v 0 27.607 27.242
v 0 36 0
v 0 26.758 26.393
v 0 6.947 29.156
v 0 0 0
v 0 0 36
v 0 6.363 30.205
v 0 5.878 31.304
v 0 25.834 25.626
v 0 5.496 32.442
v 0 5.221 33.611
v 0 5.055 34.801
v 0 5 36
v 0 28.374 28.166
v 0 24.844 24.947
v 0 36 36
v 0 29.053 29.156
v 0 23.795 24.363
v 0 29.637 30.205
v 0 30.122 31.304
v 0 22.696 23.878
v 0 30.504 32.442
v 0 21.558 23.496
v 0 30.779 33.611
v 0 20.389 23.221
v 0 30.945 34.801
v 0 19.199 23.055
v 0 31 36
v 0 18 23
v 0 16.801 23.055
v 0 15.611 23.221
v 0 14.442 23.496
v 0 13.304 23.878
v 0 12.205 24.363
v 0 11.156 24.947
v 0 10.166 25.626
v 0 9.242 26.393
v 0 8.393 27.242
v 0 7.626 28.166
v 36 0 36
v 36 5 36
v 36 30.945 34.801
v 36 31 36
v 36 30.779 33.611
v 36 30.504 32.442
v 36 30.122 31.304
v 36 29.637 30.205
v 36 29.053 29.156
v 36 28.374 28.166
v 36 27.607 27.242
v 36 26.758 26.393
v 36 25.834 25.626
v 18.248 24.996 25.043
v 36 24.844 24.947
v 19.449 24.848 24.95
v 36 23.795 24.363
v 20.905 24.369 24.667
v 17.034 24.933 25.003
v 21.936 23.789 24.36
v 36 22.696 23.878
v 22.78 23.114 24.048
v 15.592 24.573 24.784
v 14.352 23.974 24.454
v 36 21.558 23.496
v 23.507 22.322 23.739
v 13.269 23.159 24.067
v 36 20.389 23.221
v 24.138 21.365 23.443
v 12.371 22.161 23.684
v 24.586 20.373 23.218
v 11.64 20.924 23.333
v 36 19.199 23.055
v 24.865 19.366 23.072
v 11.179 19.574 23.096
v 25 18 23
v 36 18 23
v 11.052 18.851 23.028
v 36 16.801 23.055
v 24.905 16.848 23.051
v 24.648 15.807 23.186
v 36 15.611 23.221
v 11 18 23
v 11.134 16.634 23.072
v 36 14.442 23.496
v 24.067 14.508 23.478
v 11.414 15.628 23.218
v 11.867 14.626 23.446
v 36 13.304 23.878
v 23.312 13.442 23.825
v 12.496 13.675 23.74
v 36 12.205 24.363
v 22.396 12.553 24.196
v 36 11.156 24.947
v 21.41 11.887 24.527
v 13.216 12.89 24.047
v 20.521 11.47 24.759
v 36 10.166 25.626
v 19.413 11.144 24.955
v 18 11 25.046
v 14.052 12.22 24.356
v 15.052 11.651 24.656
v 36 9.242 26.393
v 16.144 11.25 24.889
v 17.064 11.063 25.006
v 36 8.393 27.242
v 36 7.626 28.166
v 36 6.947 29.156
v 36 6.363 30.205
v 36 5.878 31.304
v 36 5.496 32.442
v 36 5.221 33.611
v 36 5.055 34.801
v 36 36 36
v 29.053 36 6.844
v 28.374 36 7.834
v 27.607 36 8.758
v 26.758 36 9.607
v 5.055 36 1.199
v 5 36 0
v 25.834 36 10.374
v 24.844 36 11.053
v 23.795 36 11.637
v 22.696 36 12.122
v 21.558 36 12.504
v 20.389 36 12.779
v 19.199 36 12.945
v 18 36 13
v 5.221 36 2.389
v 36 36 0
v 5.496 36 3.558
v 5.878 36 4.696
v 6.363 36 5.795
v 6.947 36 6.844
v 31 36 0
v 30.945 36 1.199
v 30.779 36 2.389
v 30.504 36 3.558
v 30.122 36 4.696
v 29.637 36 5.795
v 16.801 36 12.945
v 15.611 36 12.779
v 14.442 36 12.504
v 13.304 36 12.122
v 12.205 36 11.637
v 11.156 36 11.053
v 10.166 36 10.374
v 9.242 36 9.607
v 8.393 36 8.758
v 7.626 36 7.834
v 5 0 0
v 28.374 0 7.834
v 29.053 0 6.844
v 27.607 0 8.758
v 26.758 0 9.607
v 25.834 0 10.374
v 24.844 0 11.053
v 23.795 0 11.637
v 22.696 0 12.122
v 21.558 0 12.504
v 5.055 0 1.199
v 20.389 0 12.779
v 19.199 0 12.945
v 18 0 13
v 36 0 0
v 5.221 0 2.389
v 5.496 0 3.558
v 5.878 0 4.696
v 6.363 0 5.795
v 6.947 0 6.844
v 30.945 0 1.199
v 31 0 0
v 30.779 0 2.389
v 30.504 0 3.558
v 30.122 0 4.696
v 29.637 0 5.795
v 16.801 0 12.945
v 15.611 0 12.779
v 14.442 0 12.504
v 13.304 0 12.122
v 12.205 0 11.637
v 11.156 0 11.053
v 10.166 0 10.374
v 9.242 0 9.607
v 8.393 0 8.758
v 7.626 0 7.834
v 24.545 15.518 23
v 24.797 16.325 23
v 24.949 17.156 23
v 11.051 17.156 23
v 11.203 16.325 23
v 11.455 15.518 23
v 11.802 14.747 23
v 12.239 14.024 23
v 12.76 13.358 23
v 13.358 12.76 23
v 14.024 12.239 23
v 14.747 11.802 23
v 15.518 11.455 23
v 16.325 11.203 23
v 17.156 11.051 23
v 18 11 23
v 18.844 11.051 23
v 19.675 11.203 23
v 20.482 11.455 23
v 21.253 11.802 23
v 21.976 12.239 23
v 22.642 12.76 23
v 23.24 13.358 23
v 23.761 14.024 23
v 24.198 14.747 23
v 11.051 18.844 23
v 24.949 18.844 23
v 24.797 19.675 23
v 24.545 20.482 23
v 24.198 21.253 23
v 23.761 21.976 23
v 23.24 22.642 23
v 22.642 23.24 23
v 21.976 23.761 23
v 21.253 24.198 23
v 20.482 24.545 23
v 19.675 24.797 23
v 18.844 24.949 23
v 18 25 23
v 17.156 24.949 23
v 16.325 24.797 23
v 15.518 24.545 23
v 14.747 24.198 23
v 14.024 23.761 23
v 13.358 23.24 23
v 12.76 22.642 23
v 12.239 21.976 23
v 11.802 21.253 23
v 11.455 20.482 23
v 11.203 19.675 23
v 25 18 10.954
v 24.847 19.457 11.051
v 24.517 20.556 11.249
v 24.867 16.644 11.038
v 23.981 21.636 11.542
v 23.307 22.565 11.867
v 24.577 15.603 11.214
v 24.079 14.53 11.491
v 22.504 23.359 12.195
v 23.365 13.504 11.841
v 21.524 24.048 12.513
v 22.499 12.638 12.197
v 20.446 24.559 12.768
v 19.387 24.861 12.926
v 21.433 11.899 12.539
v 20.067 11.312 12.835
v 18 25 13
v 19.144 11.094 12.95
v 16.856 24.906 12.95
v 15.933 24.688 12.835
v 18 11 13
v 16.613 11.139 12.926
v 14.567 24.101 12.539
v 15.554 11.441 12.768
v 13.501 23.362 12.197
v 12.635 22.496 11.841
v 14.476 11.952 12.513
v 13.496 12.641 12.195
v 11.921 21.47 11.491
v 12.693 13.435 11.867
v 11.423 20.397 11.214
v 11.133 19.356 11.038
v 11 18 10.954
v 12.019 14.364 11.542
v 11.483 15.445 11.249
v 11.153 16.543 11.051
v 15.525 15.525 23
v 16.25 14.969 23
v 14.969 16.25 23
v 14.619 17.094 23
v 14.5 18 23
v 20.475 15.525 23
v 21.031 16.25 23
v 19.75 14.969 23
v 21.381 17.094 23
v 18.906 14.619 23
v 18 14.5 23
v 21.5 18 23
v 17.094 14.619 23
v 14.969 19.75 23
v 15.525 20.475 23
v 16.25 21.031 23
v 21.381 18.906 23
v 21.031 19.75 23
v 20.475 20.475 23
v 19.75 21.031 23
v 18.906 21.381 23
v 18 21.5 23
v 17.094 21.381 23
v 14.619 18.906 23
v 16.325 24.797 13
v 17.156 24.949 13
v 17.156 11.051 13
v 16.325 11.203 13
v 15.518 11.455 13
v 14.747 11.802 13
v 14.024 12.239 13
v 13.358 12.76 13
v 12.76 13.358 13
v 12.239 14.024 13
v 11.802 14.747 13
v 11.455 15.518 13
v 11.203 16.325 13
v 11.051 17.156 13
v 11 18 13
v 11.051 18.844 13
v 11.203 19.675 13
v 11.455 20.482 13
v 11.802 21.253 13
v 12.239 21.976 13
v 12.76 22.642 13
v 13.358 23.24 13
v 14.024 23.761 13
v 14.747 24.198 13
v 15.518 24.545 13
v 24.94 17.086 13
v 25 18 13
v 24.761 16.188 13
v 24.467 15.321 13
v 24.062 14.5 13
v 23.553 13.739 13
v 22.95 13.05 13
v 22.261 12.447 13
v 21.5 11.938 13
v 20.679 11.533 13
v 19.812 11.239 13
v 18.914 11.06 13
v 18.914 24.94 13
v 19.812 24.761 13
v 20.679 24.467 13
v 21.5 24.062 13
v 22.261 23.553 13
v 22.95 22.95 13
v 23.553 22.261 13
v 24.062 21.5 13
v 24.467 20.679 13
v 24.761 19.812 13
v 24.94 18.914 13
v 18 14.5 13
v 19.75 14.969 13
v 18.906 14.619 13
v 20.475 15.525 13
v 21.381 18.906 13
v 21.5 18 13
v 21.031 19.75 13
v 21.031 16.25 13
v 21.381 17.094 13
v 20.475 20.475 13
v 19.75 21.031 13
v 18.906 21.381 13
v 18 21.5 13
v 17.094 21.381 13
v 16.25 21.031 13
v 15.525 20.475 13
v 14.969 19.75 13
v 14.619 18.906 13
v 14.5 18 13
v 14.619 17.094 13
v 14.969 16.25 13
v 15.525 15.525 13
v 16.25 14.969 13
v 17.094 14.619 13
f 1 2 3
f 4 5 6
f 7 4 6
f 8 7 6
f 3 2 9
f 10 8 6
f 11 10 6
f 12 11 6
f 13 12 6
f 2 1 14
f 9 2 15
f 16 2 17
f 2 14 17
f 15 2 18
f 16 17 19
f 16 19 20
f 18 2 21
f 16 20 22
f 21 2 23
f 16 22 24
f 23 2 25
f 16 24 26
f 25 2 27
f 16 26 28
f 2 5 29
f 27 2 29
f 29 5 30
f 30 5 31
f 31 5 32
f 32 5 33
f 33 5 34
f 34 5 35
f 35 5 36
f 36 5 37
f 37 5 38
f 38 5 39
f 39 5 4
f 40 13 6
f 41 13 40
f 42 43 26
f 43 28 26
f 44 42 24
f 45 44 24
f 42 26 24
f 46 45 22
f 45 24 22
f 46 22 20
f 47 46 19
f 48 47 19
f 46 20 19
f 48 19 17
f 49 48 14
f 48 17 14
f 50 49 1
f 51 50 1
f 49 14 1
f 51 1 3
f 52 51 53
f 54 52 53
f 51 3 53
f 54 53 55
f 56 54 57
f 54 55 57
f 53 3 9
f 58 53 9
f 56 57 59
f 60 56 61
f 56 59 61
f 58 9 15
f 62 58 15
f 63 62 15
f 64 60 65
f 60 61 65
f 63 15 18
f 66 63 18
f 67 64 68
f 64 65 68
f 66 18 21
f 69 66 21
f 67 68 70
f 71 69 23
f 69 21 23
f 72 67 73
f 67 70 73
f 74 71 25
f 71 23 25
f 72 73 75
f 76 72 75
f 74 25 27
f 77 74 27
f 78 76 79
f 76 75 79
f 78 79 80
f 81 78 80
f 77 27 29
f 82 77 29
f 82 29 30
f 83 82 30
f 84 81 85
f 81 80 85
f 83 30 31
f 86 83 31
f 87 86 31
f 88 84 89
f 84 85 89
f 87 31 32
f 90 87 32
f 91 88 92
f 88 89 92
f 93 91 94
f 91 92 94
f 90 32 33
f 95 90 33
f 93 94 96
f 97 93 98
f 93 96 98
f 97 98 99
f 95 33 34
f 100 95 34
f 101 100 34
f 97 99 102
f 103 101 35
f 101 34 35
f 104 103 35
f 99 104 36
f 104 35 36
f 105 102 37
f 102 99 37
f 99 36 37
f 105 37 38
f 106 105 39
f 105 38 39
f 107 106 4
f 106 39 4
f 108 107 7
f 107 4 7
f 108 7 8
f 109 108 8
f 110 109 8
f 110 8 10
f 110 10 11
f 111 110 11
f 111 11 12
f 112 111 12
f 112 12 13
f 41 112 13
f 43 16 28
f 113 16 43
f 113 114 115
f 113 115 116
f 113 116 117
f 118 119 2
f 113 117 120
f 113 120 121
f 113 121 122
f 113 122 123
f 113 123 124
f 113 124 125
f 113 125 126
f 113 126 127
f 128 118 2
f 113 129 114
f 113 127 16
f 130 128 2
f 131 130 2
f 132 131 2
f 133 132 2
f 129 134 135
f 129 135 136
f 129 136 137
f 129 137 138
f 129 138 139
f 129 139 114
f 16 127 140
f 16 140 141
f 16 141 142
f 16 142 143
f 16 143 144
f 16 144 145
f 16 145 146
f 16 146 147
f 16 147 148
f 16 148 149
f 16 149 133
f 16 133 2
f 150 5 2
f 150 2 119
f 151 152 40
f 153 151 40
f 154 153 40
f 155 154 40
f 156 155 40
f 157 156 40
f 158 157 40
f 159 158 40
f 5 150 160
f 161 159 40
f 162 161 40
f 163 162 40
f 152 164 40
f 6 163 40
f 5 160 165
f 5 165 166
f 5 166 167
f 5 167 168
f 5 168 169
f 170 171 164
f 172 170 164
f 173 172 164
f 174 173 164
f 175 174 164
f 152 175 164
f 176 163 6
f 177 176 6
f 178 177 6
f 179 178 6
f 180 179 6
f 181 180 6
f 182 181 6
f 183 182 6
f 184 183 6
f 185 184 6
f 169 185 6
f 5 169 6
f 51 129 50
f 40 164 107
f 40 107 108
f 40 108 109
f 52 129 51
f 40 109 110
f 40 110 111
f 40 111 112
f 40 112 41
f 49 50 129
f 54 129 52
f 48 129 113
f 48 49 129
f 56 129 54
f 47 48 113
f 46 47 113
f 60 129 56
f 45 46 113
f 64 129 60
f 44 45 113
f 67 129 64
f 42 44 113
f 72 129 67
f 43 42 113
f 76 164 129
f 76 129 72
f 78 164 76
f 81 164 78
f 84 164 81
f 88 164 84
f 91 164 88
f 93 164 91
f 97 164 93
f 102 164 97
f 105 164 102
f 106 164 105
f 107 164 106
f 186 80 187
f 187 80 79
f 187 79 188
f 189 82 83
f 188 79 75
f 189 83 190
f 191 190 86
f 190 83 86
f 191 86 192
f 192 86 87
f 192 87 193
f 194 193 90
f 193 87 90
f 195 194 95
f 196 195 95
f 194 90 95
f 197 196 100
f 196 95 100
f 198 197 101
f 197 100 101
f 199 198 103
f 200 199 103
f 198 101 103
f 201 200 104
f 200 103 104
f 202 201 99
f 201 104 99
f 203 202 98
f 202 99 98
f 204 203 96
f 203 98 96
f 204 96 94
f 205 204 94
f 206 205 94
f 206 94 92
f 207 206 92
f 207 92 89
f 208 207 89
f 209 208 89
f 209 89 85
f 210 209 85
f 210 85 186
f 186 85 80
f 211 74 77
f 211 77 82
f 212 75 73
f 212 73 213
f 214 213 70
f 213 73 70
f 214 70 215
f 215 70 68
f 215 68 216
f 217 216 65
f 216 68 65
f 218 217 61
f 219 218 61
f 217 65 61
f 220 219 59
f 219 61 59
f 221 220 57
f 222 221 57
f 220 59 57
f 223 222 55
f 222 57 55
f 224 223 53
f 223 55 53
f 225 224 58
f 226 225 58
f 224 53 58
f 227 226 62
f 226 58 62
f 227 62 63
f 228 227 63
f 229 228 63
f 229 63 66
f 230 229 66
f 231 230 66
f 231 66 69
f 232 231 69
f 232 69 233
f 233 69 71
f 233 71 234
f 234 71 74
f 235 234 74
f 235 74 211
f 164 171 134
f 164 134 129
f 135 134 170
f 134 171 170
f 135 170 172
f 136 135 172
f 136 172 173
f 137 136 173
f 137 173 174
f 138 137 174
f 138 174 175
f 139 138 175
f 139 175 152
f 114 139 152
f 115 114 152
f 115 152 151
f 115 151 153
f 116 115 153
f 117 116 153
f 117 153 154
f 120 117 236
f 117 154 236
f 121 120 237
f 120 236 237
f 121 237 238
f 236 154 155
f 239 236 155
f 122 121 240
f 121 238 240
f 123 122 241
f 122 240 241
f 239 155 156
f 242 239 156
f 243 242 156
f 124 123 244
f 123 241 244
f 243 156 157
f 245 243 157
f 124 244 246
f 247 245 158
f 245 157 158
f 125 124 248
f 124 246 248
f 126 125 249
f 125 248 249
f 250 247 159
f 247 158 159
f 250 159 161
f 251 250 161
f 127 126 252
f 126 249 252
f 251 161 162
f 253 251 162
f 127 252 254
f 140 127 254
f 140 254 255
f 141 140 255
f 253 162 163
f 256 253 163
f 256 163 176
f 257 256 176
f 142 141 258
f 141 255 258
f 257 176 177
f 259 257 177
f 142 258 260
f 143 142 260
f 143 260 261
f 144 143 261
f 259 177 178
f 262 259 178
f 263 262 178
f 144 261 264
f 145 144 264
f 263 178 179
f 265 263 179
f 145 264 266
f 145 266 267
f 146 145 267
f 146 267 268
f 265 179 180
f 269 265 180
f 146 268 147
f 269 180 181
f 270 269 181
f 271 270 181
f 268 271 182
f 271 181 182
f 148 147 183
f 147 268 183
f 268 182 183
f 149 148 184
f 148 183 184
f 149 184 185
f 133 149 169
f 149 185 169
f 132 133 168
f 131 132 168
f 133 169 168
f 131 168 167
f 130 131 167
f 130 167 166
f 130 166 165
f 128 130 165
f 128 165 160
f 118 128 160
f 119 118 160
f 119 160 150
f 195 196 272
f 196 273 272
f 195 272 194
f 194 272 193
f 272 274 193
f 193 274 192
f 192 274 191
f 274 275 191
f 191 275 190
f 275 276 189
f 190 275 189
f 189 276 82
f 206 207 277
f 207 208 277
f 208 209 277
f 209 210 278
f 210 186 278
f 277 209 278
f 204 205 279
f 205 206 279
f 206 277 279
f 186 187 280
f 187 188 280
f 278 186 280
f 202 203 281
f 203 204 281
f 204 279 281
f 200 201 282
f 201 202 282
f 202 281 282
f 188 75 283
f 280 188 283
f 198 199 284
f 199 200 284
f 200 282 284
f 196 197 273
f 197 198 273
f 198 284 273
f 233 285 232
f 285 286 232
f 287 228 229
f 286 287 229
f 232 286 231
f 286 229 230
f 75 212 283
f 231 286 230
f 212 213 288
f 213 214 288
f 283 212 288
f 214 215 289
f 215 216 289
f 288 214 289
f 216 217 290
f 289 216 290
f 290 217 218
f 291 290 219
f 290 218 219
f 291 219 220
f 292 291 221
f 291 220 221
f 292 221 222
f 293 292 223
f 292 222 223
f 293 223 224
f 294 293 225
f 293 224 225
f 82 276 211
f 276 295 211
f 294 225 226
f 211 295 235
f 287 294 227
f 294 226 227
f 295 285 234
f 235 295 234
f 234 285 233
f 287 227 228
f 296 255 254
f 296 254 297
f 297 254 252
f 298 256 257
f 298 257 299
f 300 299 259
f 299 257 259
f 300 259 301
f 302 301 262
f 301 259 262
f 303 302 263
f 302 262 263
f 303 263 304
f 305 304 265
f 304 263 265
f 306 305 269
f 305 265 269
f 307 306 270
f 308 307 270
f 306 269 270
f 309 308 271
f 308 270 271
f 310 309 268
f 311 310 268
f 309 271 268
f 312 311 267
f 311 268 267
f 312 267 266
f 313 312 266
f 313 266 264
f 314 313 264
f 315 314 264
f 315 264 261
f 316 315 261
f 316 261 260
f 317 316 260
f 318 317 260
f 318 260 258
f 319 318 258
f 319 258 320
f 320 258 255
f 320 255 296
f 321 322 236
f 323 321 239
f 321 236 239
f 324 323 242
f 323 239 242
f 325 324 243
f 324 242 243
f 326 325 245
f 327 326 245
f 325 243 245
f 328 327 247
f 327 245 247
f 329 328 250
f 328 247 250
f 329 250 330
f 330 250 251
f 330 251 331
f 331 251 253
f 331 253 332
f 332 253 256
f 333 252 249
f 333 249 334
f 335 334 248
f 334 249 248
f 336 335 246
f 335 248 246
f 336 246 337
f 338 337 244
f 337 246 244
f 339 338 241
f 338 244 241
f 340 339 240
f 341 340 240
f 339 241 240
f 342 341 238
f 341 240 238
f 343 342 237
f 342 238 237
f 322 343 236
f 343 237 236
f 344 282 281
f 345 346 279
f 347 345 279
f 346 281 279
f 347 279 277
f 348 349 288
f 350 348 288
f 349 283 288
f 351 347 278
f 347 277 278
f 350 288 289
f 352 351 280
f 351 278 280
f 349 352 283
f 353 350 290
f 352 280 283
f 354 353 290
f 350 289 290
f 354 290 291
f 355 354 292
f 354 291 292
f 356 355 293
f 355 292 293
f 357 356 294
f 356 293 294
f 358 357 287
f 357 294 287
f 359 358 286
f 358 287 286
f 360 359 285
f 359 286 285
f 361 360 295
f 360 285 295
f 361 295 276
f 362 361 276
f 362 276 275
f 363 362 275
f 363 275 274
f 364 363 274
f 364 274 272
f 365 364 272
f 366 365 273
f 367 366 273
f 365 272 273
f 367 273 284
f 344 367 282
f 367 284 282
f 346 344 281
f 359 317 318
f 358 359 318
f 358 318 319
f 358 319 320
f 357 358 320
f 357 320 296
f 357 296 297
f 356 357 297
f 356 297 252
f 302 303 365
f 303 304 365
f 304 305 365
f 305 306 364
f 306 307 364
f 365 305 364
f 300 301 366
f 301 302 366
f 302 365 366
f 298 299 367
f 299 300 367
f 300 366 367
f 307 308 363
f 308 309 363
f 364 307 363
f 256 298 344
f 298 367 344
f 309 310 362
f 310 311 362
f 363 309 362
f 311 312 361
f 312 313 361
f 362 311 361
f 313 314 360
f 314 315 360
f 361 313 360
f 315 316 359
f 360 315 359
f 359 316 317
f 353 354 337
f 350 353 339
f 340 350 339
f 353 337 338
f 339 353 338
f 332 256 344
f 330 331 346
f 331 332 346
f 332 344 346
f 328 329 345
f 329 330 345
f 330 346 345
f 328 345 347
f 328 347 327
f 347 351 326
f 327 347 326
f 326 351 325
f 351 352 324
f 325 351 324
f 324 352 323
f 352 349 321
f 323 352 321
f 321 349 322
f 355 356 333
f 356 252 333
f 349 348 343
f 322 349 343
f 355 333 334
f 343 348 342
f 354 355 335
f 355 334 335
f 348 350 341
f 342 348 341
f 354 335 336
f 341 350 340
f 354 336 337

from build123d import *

# Parameters (mm, degrees)
BOX_W           = 36
BOX_H           = 36
BOX_DEPTH       = 36
SKETCH_R        = 3.5
POCKET_DEPTH    = 36.001
SKETCH004_R     = 7
POCKET001_DEPTH = 13
SKETCH001_R     = 7
POCKET002_DEPTH = 13
SKETCH003_R     = 13
POCKET003_DEPTH = 36.001
SKETCH002_R     = 13
POCKET004_DEPTH = 36.001


with BuildPart() as part:
    # Box → Box (new body)
    with BuildSketch(Plane.XY):
        with Locations((18, 18)):
            Rectangle(BOX_W, BOX_H)
    extrude(amount=BOX_DEPTH)

    # Sketch → Pocket (cut, through all)
    with BuildSketch(Plane.XY.offset(36)):
        with Locations((18, 18)):
            Circle(SKETCH_R)
    extrude(amount=-POCKET_DEPTH, mode=Mode.SUBTRACT)

    # Sketch004 → Pocket001 (cut)
    with BuildSketch(Plane.XY.offset(36)):
        with Locations((18, 18)):
            Circle(SKETCH004_R)
    extrude(amount=-POCKET001_DEPTH, mode=Mode.SUBTRACT)

    # Sketch001 → Pocket002 (cut)
    with BuildSketch(Plane(origin=(0, 0, 0), x_dir=(1, 0, 0), z_dir=(0, 0, -1))):
        with Locations((18, -18)):
            Circle(SKETCH001_R)
    extrude(amount=-POCKET002_DEPTH, mode=Mode.SUBTRACT)

    # Sketch003 → Pocket003 (cut, through all)
    with BuildSketch(Plane(origin=(0, 0, 0), x_dir=(0, -1, 0), z_dir=(-1, 0, 0))):
        with Locations((-18, 36)):
            Circle(SKETCH003_R)
    extrude(amount=-POCKET003_DEPTH, mode=Mode.SUBTRACT)

    # Sketch002 → Pocket004 (cut, through all)
    with BuildSketch(Plane.XZ):
        with Locations((18, 0)):
            Circle(SKETCH002_R)
    extrude(amount=-POCKET004_DEPTH, mode=Mode.SUBTRACT)


solid = part.part
